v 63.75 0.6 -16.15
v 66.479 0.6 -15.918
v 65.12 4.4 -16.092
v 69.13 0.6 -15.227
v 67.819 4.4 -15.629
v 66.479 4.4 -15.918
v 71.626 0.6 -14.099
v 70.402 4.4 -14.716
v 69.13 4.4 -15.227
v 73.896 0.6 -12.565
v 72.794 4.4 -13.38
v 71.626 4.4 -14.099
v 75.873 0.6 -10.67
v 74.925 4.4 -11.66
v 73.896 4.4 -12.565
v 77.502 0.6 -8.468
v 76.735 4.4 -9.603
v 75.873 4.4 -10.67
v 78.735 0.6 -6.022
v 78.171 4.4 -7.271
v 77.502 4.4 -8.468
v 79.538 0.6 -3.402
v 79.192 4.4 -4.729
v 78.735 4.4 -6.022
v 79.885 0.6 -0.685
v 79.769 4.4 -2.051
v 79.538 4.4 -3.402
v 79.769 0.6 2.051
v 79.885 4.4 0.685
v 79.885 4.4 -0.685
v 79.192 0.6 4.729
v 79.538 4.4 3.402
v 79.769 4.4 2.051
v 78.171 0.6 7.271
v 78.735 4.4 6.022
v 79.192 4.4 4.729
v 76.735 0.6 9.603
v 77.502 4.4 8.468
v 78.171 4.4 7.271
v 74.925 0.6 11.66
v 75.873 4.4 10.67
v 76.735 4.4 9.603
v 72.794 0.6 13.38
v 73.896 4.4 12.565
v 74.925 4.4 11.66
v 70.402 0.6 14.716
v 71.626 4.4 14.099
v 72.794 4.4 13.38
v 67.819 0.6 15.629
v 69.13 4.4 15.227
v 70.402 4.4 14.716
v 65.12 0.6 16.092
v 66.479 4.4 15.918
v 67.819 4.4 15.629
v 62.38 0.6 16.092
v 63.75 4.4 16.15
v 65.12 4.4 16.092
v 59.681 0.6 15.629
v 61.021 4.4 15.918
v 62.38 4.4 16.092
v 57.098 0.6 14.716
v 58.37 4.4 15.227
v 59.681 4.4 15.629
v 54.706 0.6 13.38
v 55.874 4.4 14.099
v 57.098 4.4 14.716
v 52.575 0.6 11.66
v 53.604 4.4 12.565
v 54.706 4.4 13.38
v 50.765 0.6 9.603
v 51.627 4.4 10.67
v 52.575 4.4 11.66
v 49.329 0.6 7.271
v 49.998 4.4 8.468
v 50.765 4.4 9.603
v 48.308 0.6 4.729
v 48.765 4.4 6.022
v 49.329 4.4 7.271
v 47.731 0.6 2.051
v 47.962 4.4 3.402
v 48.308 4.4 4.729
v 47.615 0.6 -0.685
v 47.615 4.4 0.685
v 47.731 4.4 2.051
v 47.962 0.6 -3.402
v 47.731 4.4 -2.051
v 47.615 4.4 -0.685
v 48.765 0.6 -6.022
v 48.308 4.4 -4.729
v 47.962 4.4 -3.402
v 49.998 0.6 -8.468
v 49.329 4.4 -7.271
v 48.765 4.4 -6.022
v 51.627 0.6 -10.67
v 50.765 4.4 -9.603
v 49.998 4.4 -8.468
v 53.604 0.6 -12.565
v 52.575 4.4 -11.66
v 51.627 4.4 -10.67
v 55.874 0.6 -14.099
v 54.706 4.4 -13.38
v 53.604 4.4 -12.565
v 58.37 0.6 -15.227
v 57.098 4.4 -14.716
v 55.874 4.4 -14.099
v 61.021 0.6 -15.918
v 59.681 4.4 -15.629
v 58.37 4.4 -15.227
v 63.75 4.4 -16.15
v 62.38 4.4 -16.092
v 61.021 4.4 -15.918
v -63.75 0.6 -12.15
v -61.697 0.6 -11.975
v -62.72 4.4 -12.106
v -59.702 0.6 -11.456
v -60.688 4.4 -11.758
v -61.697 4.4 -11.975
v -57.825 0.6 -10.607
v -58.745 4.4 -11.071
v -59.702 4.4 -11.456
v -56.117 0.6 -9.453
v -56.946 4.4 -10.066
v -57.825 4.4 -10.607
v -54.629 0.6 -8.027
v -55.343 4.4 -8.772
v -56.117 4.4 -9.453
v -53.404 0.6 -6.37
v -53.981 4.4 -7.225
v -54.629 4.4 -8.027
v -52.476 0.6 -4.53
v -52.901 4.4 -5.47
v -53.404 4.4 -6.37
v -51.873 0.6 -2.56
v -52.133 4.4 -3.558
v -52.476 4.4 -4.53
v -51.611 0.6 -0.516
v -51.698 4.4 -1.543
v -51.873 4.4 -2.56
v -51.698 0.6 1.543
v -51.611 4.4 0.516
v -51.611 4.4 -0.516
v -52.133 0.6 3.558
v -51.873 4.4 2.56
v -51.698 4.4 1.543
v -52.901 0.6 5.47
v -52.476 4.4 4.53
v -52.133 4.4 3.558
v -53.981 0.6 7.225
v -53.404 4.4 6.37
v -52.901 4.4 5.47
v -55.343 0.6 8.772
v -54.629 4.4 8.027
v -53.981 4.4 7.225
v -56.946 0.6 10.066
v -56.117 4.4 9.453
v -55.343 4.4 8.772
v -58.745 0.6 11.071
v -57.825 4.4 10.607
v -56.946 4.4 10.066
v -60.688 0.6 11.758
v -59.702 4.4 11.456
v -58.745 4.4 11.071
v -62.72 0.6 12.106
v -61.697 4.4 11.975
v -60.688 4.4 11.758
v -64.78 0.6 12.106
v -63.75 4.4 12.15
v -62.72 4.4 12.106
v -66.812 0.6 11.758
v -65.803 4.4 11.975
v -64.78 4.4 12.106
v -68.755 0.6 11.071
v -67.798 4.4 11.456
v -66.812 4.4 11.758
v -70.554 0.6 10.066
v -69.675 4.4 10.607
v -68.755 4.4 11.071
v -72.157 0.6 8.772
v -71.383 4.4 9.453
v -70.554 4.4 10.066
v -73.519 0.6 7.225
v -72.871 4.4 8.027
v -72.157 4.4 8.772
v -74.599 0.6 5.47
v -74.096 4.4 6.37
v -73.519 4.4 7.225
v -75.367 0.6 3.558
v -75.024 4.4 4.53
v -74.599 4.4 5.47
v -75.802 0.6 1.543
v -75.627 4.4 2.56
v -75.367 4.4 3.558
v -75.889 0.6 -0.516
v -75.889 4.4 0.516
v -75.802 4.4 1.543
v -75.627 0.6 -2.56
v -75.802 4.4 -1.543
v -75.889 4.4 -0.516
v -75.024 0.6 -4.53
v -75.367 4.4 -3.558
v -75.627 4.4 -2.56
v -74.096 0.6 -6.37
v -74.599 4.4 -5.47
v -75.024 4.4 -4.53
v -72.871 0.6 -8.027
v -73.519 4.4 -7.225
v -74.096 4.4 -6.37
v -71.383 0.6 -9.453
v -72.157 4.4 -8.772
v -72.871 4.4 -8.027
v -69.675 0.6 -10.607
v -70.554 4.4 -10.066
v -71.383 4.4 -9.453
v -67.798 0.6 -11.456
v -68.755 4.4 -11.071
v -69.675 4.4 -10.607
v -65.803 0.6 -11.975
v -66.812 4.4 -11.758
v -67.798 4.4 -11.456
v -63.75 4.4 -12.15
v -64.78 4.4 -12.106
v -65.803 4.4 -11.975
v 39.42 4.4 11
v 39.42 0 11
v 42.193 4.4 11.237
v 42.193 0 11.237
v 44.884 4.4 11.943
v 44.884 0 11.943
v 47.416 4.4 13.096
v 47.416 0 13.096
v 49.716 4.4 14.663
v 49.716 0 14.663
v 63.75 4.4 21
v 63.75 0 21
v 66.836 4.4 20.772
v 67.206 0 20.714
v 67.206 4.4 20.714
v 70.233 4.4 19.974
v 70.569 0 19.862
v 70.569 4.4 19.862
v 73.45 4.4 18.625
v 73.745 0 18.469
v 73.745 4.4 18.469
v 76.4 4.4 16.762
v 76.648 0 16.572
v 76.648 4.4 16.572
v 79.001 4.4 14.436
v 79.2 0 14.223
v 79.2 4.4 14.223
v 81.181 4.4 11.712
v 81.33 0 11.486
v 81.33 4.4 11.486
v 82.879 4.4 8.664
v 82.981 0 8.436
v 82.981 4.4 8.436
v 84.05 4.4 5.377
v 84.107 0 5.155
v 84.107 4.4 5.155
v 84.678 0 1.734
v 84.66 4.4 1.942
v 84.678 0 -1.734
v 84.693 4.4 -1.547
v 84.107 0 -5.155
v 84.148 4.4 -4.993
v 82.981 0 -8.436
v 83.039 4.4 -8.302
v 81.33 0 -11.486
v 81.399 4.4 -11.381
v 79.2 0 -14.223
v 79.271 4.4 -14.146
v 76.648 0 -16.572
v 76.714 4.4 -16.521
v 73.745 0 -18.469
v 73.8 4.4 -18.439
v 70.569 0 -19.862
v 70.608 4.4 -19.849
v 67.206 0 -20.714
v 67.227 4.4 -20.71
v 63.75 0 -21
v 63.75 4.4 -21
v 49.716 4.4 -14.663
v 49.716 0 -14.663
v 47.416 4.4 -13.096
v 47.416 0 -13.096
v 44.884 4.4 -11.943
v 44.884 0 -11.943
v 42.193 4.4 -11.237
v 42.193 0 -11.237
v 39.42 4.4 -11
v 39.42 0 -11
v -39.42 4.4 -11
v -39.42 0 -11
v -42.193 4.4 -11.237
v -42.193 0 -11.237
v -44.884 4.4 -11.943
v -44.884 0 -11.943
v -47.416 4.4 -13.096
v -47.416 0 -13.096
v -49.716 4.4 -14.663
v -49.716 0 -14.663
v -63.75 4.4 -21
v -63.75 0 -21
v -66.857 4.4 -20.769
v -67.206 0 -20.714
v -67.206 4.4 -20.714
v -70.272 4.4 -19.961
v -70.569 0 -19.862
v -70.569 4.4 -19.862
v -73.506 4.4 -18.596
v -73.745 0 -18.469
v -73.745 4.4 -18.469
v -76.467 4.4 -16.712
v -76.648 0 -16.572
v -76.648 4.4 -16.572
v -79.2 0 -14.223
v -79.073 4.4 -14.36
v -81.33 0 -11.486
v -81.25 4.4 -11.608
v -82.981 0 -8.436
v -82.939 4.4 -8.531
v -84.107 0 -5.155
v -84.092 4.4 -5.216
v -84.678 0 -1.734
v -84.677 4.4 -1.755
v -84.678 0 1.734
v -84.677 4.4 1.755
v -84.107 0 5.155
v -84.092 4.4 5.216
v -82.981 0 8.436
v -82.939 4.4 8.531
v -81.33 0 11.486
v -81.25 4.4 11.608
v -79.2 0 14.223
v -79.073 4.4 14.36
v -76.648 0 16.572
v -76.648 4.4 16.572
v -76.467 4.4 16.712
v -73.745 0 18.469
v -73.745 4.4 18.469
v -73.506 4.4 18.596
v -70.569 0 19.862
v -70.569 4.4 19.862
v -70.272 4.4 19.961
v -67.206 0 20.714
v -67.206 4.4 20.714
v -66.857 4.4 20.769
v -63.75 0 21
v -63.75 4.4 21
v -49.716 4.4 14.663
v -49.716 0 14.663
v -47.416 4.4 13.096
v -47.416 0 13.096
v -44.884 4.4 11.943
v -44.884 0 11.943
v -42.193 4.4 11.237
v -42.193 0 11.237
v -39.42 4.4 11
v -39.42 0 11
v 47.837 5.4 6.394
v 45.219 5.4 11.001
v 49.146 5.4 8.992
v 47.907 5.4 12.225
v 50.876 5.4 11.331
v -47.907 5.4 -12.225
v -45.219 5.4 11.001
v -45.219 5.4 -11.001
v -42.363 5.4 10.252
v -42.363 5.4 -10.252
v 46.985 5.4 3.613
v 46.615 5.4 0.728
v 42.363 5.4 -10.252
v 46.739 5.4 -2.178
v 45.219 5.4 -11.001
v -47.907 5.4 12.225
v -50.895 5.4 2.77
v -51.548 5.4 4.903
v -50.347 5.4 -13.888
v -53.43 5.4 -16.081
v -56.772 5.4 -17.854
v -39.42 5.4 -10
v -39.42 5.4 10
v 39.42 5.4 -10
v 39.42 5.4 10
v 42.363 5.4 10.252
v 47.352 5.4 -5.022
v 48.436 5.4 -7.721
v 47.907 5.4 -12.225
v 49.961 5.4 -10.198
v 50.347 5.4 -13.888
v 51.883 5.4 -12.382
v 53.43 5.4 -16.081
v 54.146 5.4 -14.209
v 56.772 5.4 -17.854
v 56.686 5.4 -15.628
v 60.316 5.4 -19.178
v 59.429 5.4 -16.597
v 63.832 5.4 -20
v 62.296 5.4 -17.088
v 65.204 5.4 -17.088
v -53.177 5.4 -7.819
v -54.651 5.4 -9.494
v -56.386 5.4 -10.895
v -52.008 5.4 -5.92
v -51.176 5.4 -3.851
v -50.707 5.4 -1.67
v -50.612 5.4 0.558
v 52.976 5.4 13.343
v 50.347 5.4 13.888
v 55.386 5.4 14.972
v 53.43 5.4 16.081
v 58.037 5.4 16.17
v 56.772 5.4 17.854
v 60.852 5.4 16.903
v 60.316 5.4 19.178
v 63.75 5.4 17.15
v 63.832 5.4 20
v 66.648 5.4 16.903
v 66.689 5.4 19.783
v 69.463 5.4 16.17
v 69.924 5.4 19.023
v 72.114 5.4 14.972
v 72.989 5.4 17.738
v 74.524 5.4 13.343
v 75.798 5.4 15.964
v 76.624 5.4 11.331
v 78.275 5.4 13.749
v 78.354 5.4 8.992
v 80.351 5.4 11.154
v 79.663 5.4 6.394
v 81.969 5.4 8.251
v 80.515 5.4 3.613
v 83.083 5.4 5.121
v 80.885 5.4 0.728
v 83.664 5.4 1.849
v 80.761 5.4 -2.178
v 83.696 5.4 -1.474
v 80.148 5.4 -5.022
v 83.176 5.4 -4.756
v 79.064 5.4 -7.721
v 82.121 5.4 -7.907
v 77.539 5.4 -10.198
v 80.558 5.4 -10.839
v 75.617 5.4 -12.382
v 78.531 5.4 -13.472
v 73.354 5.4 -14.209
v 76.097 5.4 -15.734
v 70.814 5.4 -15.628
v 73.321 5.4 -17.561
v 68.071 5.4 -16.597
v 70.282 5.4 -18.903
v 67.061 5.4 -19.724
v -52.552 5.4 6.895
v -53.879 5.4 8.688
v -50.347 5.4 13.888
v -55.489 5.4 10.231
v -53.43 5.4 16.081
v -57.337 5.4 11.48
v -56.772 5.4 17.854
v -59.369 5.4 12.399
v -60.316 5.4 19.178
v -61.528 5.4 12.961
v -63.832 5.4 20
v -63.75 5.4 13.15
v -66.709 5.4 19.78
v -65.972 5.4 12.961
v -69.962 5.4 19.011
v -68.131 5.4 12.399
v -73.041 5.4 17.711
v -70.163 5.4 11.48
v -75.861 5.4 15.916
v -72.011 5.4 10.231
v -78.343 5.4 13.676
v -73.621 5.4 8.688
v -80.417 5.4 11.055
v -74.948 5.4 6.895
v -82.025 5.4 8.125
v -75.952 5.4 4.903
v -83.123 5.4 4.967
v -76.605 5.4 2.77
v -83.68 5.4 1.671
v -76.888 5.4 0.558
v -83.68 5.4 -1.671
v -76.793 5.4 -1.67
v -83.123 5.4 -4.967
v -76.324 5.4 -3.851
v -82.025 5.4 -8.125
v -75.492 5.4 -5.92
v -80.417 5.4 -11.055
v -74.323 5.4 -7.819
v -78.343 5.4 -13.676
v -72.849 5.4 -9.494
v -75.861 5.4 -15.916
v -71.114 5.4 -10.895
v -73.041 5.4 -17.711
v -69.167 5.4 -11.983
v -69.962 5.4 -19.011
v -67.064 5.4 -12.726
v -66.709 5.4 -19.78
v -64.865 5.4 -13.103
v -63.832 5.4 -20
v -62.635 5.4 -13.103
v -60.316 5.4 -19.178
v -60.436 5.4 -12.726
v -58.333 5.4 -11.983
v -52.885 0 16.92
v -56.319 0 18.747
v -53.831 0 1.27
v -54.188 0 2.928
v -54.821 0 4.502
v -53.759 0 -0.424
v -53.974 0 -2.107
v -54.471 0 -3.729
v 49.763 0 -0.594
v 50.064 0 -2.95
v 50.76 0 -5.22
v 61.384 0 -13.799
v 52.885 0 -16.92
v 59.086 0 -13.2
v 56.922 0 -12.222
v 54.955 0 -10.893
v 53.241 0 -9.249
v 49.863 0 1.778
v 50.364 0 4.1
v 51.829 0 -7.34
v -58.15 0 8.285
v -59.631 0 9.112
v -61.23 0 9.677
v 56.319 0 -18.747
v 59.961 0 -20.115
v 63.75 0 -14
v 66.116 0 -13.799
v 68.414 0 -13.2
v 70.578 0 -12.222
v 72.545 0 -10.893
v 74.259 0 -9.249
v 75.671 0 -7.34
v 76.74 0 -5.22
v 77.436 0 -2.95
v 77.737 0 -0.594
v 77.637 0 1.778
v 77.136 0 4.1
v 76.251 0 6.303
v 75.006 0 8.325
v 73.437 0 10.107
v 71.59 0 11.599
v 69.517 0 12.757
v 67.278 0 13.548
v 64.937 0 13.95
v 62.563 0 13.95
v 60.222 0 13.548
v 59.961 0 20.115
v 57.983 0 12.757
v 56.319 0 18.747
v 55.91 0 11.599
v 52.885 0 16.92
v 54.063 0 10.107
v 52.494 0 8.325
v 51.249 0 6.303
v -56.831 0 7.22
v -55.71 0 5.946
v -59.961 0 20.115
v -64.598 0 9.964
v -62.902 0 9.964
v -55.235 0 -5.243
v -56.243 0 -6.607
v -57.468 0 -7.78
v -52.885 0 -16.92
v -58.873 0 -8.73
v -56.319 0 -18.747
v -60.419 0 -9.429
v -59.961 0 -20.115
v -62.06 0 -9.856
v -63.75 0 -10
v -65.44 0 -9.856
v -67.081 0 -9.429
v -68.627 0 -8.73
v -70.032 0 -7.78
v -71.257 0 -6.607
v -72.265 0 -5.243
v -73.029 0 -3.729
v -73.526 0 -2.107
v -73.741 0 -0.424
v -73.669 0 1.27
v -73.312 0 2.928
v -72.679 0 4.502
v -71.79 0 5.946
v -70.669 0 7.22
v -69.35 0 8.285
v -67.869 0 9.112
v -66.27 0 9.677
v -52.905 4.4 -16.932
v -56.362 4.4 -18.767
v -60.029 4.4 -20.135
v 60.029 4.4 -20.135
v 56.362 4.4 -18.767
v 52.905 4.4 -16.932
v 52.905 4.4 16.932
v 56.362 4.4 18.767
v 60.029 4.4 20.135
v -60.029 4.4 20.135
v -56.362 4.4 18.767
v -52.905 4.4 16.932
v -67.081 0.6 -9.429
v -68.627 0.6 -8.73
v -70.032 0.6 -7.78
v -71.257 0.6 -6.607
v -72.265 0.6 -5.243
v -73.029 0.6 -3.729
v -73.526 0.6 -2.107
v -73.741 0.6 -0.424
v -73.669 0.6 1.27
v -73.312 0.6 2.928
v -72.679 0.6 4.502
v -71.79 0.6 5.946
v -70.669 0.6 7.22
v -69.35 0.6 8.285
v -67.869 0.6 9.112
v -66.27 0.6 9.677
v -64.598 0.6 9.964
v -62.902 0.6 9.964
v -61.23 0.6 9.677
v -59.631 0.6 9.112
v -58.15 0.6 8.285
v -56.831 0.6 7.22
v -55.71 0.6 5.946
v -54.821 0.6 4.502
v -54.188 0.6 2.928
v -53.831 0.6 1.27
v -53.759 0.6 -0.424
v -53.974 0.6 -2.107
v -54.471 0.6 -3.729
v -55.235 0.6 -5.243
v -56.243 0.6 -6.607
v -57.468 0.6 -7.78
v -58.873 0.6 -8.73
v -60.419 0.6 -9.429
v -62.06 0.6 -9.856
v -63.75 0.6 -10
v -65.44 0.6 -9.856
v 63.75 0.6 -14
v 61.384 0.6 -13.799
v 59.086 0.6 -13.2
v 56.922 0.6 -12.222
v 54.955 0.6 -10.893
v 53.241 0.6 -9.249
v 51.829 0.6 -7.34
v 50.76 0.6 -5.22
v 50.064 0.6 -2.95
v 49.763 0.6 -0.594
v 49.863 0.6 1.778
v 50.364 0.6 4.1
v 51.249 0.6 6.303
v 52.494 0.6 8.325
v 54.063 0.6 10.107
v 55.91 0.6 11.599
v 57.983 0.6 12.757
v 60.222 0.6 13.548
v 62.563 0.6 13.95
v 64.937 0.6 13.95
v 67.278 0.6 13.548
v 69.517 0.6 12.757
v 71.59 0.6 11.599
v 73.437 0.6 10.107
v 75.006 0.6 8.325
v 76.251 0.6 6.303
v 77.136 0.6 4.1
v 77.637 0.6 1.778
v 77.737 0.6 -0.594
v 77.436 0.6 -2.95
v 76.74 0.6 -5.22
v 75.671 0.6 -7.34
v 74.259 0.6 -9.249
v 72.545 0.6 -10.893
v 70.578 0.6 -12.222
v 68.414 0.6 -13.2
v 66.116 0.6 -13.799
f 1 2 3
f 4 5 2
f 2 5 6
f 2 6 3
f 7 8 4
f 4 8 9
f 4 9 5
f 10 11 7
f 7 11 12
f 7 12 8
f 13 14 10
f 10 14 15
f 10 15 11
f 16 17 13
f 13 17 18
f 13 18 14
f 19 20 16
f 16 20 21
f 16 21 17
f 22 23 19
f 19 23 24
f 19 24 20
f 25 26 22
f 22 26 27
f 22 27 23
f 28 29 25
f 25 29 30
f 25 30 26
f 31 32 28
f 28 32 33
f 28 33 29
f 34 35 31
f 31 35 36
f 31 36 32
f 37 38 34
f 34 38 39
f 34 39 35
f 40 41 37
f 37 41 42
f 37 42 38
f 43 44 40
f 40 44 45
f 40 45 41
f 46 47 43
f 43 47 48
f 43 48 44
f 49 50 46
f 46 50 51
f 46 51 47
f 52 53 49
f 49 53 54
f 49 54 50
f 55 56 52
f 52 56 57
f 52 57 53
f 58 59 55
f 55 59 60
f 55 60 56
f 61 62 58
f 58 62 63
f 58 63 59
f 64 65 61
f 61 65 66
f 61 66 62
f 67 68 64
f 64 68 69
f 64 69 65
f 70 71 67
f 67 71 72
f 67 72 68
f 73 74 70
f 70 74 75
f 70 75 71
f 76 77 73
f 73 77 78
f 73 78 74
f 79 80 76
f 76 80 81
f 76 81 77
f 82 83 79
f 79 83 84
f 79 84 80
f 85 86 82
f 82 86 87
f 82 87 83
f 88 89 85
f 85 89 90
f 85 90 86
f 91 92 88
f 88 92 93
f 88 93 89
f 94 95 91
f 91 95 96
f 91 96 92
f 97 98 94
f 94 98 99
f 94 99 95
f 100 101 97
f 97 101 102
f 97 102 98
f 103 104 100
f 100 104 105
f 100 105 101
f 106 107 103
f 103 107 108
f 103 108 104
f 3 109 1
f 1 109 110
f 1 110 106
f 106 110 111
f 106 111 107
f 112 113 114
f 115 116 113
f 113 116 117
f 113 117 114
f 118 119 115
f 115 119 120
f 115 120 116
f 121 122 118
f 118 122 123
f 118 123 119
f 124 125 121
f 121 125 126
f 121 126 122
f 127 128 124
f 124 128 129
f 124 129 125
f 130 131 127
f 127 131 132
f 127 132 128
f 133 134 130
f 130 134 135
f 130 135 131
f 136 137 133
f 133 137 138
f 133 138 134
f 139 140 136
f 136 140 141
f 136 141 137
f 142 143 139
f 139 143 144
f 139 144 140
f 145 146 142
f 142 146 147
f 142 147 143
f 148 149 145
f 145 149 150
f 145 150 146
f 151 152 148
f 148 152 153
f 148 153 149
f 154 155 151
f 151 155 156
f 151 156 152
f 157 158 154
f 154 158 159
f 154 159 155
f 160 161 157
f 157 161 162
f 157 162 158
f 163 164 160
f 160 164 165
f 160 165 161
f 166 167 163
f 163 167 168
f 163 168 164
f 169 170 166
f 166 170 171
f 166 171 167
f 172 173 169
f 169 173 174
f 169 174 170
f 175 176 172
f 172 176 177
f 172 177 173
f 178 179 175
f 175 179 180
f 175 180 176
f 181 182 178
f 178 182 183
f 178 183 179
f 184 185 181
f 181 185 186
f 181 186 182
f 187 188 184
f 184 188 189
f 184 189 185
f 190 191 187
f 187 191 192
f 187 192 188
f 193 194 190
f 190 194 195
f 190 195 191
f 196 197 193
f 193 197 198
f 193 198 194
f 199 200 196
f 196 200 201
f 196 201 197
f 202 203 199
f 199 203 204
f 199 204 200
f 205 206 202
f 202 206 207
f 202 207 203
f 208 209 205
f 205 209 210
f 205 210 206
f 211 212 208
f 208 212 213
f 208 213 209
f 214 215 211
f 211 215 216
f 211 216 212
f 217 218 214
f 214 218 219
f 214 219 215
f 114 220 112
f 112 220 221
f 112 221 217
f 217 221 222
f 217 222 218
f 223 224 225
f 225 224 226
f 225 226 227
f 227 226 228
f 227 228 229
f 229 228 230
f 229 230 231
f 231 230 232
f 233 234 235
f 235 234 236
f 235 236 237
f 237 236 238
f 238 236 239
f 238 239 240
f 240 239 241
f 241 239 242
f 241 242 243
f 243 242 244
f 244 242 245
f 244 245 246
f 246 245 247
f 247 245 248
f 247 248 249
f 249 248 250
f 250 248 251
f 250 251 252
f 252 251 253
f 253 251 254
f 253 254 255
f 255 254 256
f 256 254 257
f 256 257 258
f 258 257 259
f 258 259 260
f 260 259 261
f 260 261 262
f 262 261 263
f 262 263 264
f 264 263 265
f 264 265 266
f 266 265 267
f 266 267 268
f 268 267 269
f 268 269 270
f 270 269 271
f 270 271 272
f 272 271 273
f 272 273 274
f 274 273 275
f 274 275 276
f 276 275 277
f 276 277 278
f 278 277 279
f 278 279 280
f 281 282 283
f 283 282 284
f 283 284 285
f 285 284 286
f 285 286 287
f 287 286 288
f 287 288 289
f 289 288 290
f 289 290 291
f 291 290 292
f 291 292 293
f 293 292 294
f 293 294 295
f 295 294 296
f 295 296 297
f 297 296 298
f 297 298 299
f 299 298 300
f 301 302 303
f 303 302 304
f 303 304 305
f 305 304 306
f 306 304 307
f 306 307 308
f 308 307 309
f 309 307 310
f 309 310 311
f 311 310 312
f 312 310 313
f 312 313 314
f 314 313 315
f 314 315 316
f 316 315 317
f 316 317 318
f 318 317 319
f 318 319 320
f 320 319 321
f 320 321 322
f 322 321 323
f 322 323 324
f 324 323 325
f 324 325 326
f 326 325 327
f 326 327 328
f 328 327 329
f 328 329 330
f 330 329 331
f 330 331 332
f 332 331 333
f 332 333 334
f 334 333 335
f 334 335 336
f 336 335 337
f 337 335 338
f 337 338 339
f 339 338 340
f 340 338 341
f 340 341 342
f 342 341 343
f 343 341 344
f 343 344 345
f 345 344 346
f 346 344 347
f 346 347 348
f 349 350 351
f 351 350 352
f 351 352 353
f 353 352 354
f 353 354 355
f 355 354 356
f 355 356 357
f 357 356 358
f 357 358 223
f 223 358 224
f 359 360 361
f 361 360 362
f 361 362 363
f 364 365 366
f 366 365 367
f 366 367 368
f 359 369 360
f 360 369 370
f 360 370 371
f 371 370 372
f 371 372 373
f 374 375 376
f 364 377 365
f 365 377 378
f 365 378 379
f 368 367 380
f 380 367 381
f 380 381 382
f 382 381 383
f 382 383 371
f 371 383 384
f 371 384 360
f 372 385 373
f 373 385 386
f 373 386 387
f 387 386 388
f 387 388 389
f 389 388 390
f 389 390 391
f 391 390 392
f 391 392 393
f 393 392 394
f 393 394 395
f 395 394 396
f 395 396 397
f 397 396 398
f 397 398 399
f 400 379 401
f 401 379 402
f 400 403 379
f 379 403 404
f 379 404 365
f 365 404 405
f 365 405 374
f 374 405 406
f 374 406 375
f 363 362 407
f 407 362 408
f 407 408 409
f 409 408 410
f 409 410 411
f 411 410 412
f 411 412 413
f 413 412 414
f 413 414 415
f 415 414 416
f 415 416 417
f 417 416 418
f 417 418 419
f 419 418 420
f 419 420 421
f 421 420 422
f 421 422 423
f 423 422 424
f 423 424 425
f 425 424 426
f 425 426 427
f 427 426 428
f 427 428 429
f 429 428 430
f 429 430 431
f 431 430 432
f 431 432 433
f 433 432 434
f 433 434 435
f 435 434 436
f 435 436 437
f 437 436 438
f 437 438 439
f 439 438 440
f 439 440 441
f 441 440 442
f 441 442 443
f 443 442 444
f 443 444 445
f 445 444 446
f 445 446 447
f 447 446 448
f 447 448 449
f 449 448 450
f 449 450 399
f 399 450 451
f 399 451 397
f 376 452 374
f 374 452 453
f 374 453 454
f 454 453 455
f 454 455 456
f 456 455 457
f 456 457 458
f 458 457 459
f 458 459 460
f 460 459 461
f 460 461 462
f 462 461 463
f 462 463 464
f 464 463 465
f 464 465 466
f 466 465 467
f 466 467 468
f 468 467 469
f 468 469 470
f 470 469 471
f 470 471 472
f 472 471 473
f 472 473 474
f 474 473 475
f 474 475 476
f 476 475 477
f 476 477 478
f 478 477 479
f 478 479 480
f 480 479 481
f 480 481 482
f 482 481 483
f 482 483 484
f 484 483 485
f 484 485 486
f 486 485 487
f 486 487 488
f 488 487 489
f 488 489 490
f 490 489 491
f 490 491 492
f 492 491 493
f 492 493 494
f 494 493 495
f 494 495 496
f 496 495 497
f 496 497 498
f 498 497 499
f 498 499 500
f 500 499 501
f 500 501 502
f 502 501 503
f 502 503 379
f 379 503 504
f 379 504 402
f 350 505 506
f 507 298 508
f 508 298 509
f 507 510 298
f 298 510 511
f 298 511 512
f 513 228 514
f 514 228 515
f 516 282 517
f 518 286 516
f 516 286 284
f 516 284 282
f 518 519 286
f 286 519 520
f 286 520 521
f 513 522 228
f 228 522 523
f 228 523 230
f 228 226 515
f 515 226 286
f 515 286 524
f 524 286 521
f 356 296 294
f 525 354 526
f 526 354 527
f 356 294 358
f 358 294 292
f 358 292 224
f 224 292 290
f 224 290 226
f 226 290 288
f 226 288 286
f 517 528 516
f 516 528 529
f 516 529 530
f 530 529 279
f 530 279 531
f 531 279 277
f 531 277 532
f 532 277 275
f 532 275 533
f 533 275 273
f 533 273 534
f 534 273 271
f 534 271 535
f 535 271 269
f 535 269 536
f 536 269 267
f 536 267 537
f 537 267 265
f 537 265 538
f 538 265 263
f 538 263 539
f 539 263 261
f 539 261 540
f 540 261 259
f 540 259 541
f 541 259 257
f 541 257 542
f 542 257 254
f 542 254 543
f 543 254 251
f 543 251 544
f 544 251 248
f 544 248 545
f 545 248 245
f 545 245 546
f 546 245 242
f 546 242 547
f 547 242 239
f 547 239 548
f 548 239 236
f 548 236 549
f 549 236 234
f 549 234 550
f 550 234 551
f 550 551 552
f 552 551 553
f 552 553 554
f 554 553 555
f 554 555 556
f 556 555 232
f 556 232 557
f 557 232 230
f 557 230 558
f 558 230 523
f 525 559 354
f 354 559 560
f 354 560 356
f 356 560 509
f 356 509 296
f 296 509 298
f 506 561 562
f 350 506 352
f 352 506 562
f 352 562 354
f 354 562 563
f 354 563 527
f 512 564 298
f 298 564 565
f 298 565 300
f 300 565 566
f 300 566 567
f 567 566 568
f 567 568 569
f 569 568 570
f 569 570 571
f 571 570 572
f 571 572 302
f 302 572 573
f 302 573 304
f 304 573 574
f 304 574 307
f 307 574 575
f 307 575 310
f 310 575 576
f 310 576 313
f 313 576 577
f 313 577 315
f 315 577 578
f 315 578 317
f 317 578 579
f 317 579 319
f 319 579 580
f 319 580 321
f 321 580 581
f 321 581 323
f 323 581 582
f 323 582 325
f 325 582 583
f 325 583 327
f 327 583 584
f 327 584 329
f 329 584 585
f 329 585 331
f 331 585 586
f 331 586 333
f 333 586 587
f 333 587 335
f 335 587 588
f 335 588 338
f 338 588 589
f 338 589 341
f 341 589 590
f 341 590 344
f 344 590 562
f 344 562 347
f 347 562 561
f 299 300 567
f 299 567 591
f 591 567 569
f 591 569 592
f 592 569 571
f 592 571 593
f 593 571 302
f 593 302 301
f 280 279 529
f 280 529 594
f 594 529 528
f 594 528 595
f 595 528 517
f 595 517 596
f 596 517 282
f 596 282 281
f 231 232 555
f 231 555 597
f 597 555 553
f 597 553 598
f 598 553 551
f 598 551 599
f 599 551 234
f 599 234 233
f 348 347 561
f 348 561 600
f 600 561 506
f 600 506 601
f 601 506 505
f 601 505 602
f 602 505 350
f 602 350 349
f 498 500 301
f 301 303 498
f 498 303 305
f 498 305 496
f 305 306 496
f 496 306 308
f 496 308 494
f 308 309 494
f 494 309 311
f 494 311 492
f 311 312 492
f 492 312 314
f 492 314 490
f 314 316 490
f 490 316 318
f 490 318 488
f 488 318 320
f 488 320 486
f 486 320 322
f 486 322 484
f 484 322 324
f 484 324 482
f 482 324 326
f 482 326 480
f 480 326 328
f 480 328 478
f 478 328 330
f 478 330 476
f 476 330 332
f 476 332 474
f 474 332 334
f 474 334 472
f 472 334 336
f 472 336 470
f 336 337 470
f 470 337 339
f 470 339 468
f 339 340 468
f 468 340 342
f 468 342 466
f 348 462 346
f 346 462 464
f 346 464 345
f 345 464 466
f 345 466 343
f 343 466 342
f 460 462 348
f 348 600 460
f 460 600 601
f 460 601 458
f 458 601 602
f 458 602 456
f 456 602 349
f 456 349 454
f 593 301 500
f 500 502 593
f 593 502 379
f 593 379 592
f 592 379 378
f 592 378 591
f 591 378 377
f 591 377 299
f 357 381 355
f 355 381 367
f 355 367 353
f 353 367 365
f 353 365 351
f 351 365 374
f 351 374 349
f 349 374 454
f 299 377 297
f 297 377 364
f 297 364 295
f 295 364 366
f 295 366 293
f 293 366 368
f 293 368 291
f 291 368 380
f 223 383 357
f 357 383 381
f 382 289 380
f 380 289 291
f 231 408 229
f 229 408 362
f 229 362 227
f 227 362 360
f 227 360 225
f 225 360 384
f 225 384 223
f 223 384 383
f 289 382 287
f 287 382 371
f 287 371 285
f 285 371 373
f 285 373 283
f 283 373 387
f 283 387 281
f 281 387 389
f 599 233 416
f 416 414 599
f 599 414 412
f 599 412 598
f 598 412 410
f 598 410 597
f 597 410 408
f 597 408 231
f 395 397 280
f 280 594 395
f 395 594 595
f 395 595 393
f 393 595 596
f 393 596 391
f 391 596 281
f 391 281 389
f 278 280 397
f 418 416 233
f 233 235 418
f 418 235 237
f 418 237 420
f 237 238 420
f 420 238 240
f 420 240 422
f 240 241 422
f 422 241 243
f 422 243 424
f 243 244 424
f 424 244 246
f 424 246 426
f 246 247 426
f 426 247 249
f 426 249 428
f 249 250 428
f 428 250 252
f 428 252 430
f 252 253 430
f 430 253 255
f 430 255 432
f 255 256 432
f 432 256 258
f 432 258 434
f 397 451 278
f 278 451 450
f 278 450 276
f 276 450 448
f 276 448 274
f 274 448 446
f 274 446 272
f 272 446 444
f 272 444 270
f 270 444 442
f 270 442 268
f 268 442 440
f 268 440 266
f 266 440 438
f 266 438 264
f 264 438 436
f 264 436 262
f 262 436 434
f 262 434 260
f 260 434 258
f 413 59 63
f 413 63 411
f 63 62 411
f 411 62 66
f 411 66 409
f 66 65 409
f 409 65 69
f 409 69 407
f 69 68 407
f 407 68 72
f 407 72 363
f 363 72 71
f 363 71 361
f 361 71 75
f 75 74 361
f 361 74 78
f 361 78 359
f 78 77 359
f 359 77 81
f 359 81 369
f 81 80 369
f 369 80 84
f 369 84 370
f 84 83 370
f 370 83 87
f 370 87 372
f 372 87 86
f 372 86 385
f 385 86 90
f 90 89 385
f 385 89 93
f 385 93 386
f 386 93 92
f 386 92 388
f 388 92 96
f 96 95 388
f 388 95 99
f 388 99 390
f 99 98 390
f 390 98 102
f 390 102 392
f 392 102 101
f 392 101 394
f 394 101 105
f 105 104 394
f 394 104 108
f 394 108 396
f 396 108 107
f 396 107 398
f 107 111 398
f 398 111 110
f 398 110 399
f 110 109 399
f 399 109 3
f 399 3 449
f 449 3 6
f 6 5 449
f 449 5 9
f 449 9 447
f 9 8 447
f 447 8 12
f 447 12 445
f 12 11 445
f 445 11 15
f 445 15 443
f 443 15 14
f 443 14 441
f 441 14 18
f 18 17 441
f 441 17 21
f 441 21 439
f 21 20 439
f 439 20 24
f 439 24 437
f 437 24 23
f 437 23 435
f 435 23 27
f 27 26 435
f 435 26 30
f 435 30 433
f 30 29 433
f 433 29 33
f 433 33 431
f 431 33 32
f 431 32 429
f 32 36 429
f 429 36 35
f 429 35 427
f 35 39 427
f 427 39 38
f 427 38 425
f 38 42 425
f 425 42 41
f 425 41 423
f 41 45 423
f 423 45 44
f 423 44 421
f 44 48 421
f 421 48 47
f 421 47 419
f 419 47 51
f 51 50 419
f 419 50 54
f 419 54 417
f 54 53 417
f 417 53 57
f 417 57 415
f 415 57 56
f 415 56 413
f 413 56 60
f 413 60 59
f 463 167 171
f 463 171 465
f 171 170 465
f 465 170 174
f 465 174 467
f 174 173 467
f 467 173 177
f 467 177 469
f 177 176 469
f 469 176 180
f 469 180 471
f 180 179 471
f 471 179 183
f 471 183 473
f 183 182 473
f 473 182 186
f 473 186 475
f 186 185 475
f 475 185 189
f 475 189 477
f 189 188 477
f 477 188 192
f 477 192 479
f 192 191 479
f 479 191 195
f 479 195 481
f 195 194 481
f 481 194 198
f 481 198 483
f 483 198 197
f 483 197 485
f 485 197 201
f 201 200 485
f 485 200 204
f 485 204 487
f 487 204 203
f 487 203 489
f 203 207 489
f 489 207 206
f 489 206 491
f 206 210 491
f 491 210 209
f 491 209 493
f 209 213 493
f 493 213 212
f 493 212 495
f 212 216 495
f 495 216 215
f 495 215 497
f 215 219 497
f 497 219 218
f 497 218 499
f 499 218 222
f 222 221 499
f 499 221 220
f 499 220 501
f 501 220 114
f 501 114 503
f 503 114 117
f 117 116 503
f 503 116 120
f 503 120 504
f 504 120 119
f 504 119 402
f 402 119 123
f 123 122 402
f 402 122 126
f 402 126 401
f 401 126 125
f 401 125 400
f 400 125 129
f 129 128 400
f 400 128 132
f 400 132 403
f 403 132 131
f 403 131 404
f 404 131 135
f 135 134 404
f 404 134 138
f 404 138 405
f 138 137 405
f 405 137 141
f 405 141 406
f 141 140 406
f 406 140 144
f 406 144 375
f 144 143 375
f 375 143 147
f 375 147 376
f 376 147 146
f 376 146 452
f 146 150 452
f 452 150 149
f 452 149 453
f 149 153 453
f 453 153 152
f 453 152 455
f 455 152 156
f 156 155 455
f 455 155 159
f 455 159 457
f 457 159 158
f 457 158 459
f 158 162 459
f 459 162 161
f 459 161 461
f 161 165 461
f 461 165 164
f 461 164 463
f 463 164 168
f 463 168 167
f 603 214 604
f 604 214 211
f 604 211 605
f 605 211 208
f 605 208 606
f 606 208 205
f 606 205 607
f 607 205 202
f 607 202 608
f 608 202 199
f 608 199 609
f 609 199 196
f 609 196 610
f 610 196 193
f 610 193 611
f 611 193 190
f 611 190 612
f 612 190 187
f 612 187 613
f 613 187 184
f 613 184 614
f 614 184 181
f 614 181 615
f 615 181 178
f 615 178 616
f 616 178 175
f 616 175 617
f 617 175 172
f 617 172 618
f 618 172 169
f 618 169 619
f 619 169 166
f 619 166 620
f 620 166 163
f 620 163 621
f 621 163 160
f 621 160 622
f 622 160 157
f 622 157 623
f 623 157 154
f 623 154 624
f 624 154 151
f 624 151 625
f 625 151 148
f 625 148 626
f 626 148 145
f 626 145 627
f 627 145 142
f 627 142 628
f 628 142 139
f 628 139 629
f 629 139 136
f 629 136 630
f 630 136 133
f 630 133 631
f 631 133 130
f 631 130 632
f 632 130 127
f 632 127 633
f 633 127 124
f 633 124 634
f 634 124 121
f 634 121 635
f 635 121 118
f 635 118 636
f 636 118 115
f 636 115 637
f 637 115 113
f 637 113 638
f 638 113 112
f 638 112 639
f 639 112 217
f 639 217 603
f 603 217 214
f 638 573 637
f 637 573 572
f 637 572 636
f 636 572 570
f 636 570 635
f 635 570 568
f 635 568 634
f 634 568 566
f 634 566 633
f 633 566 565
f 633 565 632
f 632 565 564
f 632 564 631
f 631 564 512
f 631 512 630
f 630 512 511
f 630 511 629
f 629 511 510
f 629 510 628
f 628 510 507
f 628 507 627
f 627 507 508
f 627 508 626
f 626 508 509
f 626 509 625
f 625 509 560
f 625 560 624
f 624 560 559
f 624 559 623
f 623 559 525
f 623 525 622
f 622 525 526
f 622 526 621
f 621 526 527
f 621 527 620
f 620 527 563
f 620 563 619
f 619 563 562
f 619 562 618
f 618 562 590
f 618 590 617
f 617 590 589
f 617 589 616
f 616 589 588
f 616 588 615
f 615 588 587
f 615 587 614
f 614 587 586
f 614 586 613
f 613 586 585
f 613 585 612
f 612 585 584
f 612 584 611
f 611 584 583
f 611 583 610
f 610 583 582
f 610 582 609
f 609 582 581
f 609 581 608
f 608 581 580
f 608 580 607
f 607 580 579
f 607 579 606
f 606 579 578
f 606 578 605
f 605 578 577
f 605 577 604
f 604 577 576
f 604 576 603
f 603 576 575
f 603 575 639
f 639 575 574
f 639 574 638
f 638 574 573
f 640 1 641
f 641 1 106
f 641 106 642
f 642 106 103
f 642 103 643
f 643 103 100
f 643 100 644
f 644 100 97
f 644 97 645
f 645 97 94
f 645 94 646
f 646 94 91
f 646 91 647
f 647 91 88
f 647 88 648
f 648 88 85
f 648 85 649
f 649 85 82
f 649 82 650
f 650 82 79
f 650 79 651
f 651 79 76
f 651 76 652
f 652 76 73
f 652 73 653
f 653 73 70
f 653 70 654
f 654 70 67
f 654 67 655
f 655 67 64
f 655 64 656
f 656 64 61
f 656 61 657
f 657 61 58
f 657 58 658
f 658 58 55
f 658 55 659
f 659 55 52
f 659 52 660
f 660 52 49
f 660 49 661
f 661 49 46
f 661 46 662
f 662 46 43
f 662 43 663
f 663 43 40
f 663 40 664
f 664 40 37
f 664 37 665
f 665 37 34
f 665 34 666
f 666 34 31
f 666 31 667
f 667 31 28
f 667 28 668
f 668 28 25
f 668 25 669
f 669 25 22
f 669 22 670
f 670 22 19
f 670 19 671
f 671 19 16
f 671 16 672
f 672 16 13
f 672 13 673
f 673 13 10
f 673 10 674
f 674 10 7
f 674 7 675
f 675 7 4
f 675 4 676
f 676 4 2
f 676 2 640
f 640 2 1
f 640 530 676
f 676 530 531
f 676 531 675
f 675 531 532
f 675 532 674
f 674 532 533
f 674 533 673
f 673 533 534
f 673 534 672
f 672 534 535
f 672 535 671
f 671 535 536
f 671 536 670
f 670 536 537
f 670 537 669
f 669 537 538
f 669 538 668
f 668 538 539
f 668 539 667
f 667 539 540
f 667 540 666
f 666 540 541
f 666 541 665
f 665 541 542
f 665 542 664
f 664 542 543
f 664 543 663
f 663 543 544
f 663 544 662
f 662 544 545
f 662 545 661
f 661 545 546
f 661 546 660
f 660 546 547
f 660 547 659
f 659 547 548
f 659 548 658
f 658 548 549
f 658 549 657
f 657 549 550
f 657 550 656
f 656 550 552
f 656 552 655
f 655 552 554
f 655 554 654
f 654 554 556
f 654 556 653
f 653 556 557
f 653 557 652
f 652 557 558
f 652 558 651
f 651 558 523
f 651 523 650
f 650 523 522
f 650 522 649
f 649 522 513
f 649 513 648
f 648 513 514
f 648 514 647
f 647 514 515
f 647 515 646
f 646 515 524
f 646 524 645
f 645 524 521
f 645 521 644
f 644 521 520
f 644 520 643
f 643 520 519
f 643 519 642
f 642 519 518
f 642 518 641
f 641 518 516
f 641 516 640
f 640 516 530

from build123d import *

# Parameters (mm, degrees)
SKETCH1_R           = 12.15
SKETCH1_R_2         = 16.15
BOSS_EXTRUDE1_DEPTH = 5.4
FILLET1_R           = 30
CHAMFER1_SIZE       = 1
SKETCH2_R           = 14.75534968
SKETCH2_R_2         = 10
SKETCH2_R_3         = 19.025242353
SKETCH2_R_4         = 14
BOSS_EXTRUDE2_DEPTH = 0.6


with BuildPart() as part:
    # Sketch1 → Boss-Extrude1 (new body)
    with BuildSketch(Plane(origin=(0, 0, 0), x_dir=(1, 0, 0), z_dir=(0, 1, 0))):
        with BuildLine():
            Line((54.45294862, -21), (63.75, -21))
            ThreePointArc((63.75, -21), (84.75, 0), (63.75, 21))
            Line((63.75, 21), (54.45294862, 21))
            ThreePointArc((54.45294862, 21), (48.447855306, 13.72835863), (39.420454068, 11))
            Line((39.420454068, 11), (-39.420454068, 11))
            ThreePointArc((-39.420454068, 11), (-48.447855306, 13.72835863), (-54.45294862, 21))
            Line((-54.45294862, 21), (-63.75, 21))
            ThreePointArc((-63.75, 21), (-84.75, 0), (-63.75, -21))
            Line((-63.75, -21), (-54.45294862, -21))
            ThreePointArc((-54.45294862, -21), (-48.447855306, -13.72835863), (-39.420454068, -11))
            Line((-39.420454068, -11), (39.420454068, -11))
            ThreePointArc((39.420454068, -11), (48.447855306, -13.72835863), (54.45294862, -21))
        make_face()
        with Locations(Location((-63.75, 0, 0), (0, 0, 90))):
            Circle(SKETCH1_R, mode=Mode.SUBTRACT)
        with Locations(Location((63.75, 0, 0), (0, 0, 90))):
            Circle(SKETCH1_R_2, mode=Mode.SUBTRACT)
    extrude(amount=BOSS_EXTRUDE1_DEPTH)

    # Fillet1
    # the kernel refuses this fillet: 30 mm, written as the material it takes off along each edge
    with BuildSketch(Plane(origin=(-54.45294862, -23.24262845, -21), x_dir=(0.5987620470660618, 0, 0.8009269698251266), z_dir=(0, 1, 0))) as fillet1_piece_1:
        with BuildLine():
            CenterArc((15.193568911, -29.102905777), FILLET1_R, 104.047021464, 29.74238235)
            Line((-5.566721516, -7.44625919), (-5.981927325, -7.013126259))
            ThreePointArc((-5.981927325, -7.013126259), (-3.26391694, -3.363872367), (-0.480556182, 0.359257228))
            Line((-0.480556182, 0.359257228), (0.145630869, 0.582058116))
            ThreePointArc((0.145630869, 0.582058116), (3.95601272, 0.11261485), (7.76639457, 0.582058116))
            Line((7.76639457, 0.582058116), (7.912025439, 0))
        make_face()
    extrude(amount=51.885256901, mode=Mode.SUBTRACT)
    with BuildSketch(Plane(origin=(54.45294862, -23.24262845, -21), x_dir=(1, 0, 0), z_dir=(0, 1, 0)), Plane(origin=(-54.45294862, -23.24262845, 21), x_dir=(-1, 0, 0), z_dir=(0, 1, 0))) as fillet1_piece_2:
        with BuildLine():
            CenterArc((14.211969714, -29.594654547), FILLET1_R, 99.429309033, 29.74238235)
            Line((-4.737420548, -6.33695456), (-5.116408354, -5.87180056))
            ThreePointArc((-5.116408354, -5.87180056), (-2.458906545, -3.101047782), (-0.55338428, 0.231874618))
            Line((-0.55338428, 0.231874618), (0, 0.6))
            ThreePointArc((0, 0.6), (4.64852569, 0.6), (9.198753014, 0.591893091))
            Line((9.198753014, 0.591893091), (9.29705138, 0))
        make_face()
    extrude(amount=51.885256901, mode=Mode.SUBTRACT)
    with BuildSketch(Plane(origin=(54.45294862, -23.24262845, 21), x_dir=(1, 0, 0), z_dir=(0, 1, 0))) as fillet1_piece_3:
        with BuildLine():
            CenterArc((14.211969714, 29.594654547), FILLET1_R, 230.828308617, 29.74238235)
            Line((-4.737420548, 6.33695456), (-5.116408354, 5.87180056))
            ThreePointArc((-5.116408354, 5.87180056), (-2.458906545, 3.101047782), (-0.55338428, -0.231874618))
            Line((-0.55338428, -0.231874618), (0, -0.6))
            ThreePointArc((0, -0.6), (4.64852569, -0.6), (9.198753014, -0.591893091))
            Line((9.198753014, -0.591893091), (9.29705138, 0))
        make_face()
    extrude(amount=51.885256901, mode=Mode.SUBTRACT)

    # Chamfer1
    # the kernel refuses this chamfer: 1 mm, written as the material it takes off along each edge
    with BuildSketch(Plane(origin=(63.75, 5.4, 0), x_dir=(-0.12235070165055995, 0, 0.9924869297908239), z_dir=(-0.9924869297908239, 0, -0.12235070165055995))) as chamfer1_piece_1:
        Polygon((21, -CHAMFER1_SIZE), (21 - CHAMFER1_SIZE, 0), (21, 0), align=None)
    revolve(axis=Axis((63.75, 5.4, 0), (0, 1, 0)), revolution_arc=194.055575488, mode=Mode.SUBTRACT)
    with BuildSketch(Plane(origin=(39.420454068, 5.4, -27.298794623), x_dir=(0.6316463420707552, 0, 0.7752566662394039), z_dir=(0.7752566662394039, 0, -0.6316463420707552))) as chamfer1_piece_2:
        Polygon((16.298794623 + CHAMFER1_SIZE, 0), (16.298794623, CHAMFER1_SIZE), (16.298794623, 0), align=None)
    revolve(axis=Axis((39.420454068, 5.4, -27.298794623), (0, -1, 0)), revolution_arc=39.171691383, mode=Mode.SUBTRACT)
    with BuildSketch(Plane(origin=(39.420454068, 5.4, -11), x_dir=(0, 0, 1), z_dir=(-1, 0, 0)), Plane(origin=(-39.420454068, 5.4, 11), x_dir=(0, 0, -1), z_dir=(1, 0, 0))) as chamfer1_piece_3:
        Polygon((CHAMFER1_SIZE, 0), (0, -CHAMFER1_SIZE), (0, 0), align=None)
    extrude(amount=78.840908135, mode=Mode.SUBTRACT)
    with BuildSketch(Plane(origin=(-39.420454068, 5.4, -27.298794623), x_dir=(0, 0, 1), z_dir=(1, 0, 0))) as chamfer1_piece_4:
        Polygon((16.298794623 + CHAMFER1_SIZE, 0), (16.298794623, CHAMFER1_SIZE), (16.298794623, 0), align=None)
    revolve(axis=Axis((-39.420454068, 5.4, -27.298794623), (0, -1, 0)), revolution_arc=39.171691383, mode=Mode.SUBTRACT)
    with BuildSketch(Plane(origin=(39.420454068, 5.4, 27.298794623), x_dir=(0, 0, -1), z_dir=(-1, 0, 0))) as chamfer1_piece_5:
        Polygon((16.298794623 + CHAMFER1_SIZE, 0), (16.298794623, CHAMFER1_SIZE), (16.298794623, 0), align=None)
    revolve(axis=Axis((39.420454068, 5.4, 27.298794623), (0, -1, 0)), revolution_arc=39.171691383, mode=Mode.SUBTRACT)
    with BuildSketch(Plane(origin=(-68.664918334, 5.4, -8.594654547), x_dir=(0.6316463420707823, 0, 0.7752566662393817), z_dir=(0.7752566662393817, 0, -0.6316463420707823))) as chamfer1_piece_6:
        Polygon((30 - CHAMFER1_SIZE, 0), (30, CHAMFER1_SIZE), (30, 0), align=None)
    revolve(axis=Axis((-68.664918334, 5.4, -8.594654547), (0, -1, 0)), revolution_arc=44.477686757, mode=Mode.SUBTRACT)
    with BuildSketch(Plane(origin=(68.664918334, 5.4, -8.594654547), x_dir=(0.09247477859233537, 0, 0.9957150271660554), z_dir=(0.9957150271660554, 0, -0.09247477859233537))) as chamfer1_piece_7:
        Polygon((30, CHAMFER1_SIZE), (30 - CHAMFER1_SIZE, 0), (30, 0), align=None)
    revolve(axis=Axis((68.664918334, 5.4, -8.594654547), (0, -1, 0)), revolution_arc=44.477686757, mode=Mode.SUBTRACT)
    with BuildSketch(Plane(origin=(68.664918334, 5.4, 8.594654547), x_dir=(-0.6316463420707823, 0, -0.7752566662393817), z_dir=(-0.7752566662393817, 0, 0.6316463420707823))) as chamfer1_piece_8:
        Polygon((30, CHAMFER1_SIZE), (30 - CHAMFER1_SIZE, 0), (30, 0), align=None)
    revolve(axis=Axis((68.664918334, 5.4, 8.594654547), (0, -1, 0)), revolution_arc=44.477686757, mode=Mode.SUBTRACT)
    with BuildSketch(Plane(origin=(-68.664918334, 5.4, 8.594654547), x_dir=(-0.09247477859236329, 0, -0.9957150271660529), z_dir=(-0.9957150271660529, 0, 0.09247477859236329))) as chamfer1_piece_9:
        Polygon((30 - CHAMFER1_SIZE, 0), (30, CHAMFER1_SIZE), (30, 0), align=None)
    revolve(axis=Axis((-68.664918334, 5.4, 8.594654547), (0, -1, 0)), revolution_arc=44.477686757, mode=Mode.SUBTRACT)
    with BuildSketch(Plane(origin=(-63.75, 5.4, 0), x_dir=(0.12235070165055861, 0, -0.992486929790824), z_dir=(0.992486929790824, 0, 0.12235070165055861))) as chamfer1_piece_10:
        Polygon((21 - CHAMFER1_SIZE, 0), (21, -CHAMFER1_SIZE), (21, 0), align=None)
    revolve(axis=Axis((-63.75, 5.4, 0), (0, 1, 0)), revolution_arc=194.055575488, mode=Mode.SUBTRACT)
    with BuildSketch(Plane(origin=(-39.420454068, 5.4, 27.298794623), x_dir=(-0.6316463420707533, 0, -0.7752566662394053), z_dir=(-0.7752566662394053, 0, 0.6316463420707533))) as chamfer1_piece_11:
        Polygon((16.298794623 + CHAMFER1_SIZE, 0), (16.298794623, CHAMFER1_SIZE), (16.298794623, 0), align=None)
    revolve(axis=Axis((-39.420454068, 5.4, 27.298794623), (0, -1, 0)), revolution_arc=39.171691383, mode=Mode.SUBTRACT)
    with BuildSketch(Plane(origin=(-63.75, 5.4, 0), x_dir=(0, 0, -1), z_dir=(1, 0, 0))) as chamfer1_piece_12:
        Polygon((12.15 + CHAMFER1_SIZE, 0), (12.15, -CHAMFER1_SIZE), (12.15, 0), align=None)
    revolve(axis=Axis((-63.75, 5.4, 0), (0, 1, 0)), mode=Mode.SUBTRACT)
    with BuildSketch(Plane(origin=(63.75, 5.4, 0), x_dir=(0, 0, -1), z_dir=(1, 0, 0))) as chamfer1_piece_13:
        Polygon((16.15 + CHAMFER1_SIZE, 0), (16.15, -CHAMFER1_SIZE), (16.15, 0), align=None)
    revolve(axis=Axis((63.75, 5.4, 0), (0, 1, 0)), mode=Mode.SUBTRACT)

    # Sketch2 → Boss-Extrude2 (add)
    # profile 1 of 2: a face of its own
    with BuildSketch(Plane.XZ):
        with Locations((-63.75, 0)):
            Circle(SKETCH2_R)
        with Locations(Location((-63.75, 0, 0), (0, 0, 270))):
            Circle(SKETCH2_R_2, mode=Mode.SUBTRACT)
    # profile 2 of 2: a face of its own
    with BuildSketch(Plane.XZ):
        with Locations((63.75, 0)):
            Circle(SKETCH2_R_3)
        with Locations(Location((63.75, 0, 0), (0, 0, 270))):
            Circle(SKETCH2_R_4, mode=Mode.SUBTRACT)
    extrude(amount=-BOSS_EXTRUDE2_DEPTH)


solid = part.part
